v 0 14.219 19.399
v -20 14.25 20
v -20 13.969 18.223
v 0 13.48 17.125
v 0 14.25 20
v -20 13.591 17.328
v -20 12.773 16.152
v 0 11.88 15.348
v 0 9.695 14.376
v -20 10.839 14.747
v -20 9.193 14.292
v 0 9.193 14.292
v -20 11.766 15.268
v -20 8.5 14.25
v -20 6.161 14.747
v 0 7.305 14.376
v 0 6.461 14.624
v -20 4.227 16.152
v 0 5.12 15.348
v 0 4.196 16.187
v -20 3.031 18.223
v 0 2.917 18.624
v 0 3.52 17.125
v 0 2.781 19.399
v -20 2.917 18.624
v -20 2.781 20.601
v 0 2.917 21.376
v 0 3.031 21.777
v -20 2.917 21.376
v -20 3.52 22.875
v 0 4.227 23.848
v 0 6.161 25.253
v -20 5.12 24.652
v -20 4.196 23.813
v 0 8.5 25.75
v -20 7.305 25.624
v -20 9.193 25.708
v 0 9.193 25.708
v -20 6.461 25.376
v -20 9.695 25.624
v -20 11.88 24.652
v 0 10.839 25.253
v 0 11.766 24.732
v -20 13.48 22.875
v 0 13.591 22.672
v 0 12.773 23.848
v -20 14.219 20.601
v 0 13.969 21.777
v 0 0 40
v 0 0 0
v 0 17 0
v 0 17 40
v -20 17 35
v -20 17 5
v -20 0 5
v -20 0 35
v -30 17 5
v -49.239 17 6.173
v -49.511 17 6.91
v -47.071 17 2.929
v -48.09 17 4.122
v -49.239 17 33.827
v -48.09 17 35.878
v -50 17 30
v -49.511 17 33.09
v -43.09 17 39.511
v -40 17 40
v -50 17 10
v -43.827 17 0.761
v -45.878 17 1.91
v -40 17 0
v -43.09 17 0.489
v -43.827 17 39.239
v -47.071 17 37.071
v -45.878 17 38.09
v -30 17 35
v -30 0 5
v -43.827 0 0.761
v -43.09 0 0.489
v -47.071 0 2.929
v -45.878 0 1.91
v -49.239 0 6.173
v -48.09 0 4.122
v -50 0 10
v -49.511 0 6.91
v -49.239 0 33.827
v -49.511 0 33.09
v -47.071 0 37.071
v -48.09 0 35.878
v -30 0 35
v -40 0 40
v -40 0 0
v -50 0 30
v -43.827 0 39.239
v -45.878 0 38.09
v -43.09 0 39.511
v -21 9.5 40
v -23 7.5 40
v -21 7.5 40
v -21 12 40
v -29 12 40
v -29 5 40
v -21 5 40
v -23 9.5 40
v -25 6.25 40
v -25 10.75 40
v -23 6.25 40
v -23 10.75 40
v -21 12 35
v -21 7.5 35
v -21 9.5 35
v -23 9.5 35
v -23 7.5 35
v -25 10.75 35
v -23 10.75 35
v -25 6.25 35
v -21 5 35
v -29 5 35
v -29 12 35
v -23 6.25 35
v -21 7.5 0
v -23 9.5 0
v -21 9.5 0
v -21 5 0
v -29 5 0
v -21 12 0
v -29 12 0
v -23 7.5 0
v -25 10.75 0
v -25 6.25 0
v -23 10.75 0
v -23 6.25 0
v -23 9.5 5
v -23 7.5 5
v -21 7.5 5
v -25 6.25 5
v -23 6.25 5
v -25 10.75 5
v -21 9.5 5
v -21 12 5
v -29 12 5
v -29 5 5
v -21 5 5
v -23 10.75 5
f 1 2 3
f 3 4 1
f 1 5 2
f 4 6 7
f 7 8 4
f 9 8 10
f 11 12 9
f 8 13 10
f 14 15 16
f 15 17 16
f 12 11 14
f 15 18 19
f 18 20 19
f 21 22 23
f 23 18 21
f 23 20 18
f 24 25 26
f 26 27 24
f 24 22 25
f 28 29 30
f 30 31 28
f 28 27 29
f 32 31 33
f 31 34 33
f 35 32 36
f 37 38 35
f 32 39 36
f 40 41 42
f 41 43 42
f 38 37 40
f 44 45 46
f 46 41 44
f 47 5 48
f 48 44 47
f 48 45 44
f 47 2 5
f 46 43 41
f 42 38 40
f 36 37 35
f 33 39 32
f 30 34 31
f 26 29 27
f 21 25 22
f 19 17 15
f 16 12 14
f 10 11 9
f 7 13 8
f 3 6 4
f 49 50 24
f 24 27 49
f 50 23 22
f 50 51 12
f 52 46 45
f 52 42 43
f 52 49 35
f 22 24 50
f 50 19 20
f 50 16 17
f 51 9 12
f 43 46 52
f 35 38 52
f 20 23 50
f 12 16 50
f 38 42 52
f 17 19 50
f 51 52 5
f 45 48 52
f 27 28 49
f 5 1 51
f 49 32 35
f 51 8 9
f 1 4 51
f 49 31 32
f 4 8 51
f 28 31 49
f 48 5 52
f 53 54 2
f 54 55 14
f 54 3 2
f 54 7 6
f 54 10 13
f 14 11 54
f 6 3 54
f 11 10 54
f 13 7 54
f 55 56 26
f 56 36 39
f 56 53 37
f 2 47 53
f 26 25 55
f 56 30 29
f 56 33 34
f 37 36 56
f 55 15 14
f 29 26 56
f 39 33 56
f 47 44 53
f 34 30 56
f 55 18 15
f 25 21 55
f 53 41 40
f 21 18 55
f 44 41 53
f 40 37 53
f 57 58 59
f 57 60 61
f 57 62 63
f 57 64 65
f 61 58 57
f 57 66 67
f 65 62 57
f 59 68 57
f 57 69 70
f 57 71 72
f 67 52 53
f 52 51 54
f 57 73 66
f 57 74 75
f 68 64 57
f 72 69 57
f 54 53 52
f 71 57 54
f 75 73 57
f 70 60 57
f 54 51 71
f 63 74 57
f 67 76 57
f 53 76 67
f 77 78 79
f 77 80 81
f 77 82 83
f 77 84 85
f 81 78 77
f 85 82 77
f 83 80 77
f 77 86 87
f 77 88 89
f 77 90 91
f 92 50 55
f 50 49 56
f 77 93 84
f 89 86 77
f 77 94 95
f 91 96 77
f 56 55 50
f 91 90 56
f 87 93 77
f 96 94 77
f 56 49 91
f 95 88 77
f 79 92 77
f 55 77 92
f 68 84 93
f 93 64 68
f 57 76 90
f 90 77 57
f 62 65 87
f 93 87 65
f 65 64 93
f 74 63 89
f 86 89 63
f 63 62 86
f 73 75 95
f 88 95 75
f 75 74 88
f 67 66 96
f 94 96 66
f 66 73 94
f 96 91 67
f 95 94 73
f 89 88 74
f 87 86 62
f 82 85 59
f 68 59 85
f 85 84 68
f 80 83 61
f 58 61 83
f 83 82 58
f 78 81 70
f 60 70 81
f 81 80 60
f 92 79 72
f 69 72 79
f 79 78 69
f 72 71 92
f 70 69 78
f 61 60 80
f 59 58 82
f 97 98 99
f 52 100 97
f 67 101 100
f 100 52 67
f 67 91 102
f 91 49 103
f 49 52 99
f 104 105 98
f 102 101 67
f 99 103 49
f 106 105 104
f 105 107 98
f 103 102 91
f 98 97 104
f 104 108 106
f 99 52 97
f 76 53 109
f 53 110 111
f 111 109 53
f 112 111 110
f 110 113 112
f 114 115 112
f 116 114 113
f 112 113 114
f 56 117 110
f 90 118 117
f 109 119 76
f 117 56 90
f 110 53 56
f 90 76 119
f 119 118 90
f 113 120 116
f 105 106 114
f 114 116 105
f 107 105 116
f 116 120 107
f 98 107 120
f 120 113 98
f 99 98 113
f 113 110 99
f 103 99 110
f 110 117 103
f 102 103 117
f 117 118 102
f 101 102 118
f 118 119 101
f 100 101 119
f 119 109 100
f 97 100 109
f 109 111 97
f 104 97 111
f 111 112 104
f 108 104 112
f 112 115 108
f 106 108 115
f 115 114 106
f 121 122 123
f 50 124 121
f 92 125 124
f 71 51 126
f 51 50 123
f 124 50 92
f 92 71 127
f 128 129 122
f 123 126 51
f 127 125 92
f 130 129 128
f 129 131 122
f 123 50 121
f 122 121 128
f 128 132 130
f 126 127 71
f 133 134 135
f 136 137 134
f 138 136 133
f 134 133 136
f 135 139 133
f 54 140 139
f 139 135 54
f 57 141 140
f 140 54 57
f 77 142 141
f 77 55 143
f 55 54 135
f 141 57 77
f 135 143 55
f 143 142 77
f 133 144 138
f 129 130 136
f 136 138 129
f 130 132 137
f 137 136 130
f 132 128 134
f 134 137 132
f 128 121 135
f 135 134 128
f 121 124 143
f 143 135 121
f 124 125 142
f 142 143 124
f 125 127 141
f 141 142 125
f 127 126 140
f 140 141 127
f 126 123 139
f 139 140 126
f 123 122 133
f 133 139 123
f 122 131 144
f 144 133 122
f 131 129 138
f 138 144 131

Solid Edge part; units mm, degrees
sketch "Sketch1" plane through (0, 0, 0) normal (0, 0, 1) x (1, 0, 0)
  line L0 (-23, 6.25) -> (-23, 7.5)
  line L1 (-23, 7.5) -> (-21, 7.5)
  line L2 (-21, 7.5) -> (-21, 5)
  line L3 (-29.0004, 5) -> (-21, 5)
  line L4 (-29.0004, 12) -> (-29.0004, 5)
  line L5 (-29.0004, 12) -> (-21, 12)
  line L6 (-21, 12) -> (-21, 9.5)
  line L7 (-21, 9.5) -> (-23, 9.5)
  line L8 (-23, 9.5) -> (-23, 10.75)
  line L9 (-23, 10.75) -> (-25, 10.75)
  line L10 (-25, 10.75) -> (-25, 6.25)
  line L11 (-25, 6.25) -> (-23, 6.25)
  line L12 (0, 17) -> (-50, 17)
  line L13 (-50, 17) -> (-50, 0)
  line L14 (-50, 0) -> (0, 0)
  line L15 (0, 0) -> (0, 17)
extrude "ProtrusiónExtruida_1" add sketch "Sketch1" along normal blind 40
sketch "Sketch2" plane through (-25, 0, 20) normal (0, -1, 0) x (1, 0, 0)
  line L0 (-5, -15) -> (5, -15)
  line L1 (5, -15) -> (5, 15)
  line L2 (5, 15) -> (-5, 15)
  line L3 (-5, 15) -> (-5, -15)
extrude "VaciadoExtruido_2" cut sketch "Sketch2" against normal blind 92
hole "Agujero_2" at (0, 8.5, 20) direction (-1, 0, 0) diameter 11.5 end up to next
fillet "Redondeo_1" radius 10 2 edges at (-50, 8.5, 0) (-50, 8.5, 40)
